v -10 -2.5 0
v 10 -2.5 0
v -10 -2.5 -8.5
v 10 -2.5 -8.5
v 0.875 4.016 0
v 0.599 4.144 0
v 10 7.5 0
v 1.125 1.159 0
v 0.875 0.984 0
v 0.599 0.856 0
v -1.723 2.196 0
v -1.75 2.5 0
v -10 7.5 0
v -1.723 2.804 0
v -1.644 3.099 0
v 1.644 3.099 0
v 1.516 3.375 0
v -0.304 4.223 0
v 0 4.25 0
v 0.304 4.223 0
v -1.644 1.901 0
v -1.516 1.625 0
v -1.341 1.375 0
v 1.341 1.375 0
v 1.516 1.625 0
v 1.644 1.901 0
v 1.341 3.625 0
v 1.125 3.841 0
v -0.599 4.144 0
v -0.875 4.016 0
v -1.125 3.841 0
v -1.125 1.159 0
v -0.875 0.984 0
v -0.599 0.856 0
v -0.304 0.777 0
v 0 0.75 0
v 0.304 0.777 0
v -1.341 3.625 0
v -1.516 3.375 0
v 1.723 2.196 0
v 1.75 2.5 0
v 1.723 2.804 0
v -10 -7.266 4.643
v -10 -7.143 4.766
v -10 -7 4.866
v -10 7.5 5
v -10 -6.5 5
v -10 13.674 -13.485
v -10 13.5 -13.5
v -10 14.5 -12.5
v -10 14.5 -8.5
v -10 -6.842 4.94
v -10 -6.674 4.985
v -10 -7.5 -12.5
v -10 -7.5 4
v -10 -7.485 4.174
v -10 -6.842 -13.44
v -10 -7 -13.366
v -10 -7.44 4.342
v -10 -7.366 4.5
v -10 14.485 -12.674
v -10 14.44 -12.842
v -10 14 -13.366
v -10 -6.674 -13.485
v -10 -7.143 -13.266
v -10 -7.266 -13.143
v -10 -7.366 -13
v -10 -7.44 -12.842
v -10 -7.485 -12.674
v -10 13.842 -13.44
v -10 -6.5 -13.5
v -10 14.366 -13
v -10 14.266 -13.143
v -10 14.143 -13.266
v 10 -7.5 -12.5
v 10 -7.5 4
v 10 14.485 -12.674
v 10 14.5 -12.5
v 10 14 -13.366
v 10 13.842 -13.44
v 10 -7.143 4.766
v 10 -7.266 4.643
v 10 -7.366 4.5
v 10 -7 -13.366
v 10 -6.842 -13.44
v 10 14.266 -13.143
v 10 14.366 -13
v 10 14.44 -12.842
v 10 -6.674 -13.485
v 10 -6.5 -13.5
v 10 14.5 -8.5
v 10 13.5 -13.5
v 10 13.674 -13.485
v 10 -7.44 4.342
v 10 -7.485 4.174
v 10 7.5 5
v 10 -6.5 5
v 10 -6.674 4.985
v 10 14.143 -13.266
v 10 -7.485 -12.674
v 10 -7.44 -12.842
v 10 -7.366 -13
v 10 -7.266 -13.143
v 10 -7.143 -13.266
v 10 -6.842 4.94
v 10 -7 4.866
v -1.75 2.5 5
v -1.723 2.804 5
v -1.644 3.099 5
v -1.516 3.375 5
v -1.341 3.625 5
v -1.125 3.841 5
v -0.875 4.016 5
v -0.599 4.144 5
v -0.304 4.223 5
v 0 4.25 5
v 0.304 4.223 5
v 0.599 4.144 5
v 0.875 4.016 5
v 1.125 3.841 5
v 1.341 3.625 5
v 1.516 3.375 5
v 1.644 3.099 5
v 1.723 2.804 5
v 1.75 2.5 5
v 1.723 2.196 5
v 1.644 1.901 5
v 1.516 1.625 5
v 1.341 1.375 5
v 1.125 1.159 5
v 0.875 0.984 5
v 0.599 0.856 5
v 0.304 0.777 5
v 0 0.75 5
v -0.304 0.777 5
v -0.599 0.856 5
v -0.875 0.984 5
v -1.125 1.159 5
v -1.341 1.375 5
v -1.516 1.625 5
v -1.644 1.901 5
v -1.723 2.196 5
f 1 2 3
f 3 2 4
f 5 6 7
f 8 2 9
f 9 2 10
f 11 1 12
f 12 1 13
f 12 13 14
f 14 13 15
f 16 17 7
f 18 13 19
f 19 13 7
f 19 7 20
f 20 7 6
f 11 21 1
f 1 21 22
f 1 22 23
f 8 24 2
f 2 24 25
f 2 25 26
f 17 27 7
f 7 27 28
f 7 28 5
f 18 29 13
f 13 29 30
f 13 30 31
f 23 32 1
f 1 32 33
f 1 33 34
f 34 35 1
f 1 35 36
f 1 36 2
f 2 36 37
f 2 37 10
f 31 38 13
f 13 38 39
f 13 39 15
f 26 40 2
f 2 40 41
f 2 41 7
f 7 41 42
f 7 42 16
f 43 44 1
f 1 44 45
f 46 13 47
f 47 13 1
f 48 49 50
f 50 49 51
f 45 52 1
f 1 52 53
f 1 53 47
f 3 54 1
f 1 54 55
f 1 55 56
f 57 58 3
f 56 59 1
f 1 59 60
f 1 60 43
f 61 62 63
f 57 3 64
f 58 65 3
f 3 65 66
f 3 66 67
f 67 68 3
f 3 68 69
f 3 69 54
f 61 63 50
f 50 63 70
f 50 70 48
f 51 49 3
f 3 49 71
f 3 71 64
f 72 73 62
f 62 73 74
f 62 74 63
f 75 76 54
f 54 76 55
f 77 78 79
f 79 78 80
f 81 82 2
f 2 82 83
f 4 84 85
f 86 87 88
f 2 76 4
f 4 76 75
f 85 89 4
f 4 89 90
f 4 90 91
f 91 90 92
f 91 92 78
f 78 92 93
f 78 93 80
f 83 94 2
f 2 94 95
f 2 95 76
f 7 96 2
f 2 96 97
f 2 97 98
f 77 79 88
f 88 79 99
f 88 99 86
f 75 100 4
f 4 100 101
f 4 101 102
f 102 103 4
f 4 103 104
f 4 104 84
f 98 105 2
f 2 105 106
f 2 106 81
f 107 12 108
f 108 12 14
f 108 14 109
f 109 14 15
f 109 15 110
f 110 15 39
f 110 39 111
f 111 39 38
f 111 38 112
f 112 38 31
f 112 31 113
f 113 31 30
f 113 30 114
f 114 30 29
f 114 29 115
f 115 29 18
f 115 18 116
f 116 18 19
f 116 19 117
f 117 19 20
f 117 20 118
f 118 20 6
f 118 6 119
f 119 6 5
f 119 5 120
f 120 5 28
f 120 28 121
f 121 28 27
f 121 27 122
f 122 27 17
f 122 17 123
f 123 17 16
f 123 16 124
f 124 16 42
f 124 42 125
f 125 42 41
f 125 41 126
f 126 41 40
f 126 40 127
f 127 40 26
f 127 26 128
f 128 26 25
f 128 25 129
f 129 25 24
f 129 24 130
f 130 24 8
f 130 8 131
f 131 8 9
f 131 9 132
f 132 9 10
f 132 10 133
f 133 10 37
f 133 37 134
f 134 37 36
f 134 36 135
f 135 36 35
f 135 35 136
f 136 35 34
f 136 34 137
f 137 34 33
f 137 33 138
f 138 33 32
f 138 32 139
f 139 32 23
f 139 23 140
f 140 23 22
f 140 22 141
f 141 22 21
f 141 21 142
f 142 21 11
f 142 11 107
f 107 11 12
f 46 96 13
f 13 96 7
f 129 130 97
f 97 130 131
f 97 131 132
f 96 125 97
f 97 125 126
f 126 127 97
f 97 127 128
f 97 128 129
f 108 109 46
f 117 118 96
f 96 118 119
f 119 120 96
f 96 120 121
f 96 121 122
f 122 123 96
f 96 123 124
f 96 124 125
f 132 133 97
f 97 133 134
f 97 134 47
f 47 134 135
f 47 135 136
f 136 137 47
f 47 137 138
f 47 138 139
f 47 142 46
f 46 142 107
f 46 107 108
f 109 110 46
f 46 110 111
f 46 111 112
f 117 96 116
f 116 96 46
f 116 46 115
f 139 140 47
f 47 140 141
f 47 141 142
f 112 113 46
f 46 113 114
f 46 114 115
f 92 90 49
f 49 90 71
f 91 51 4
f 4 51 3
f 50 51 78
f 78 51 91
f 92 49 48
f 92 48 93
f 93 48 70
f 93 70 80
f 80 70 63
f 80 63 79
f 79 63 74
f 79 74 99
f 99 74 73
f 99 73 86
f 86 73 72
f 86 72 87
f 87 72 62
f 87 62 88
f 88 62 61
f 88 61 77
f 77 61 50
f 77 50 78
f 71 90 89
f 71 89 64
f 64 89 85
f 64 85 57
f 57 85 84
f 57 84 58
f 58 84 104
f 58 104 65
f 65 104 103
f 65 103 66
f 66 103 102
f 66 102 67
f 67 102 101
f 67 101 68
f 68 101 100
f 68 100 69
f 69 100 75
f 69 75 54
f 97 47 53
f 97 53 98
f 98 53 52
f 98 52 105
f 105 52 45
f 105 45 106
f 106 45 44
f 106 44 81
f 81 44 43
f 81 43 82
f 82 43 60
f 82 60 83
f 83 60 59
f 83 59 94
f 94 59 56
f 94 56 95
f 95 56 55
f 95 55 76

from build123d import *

# Parameters (mm, degrees)
SCHIZZO1_W                   = 20
SCHIZZO1_H                   = 15
SCHIZZO1_R                   = 1.75
ESTRUSIONE_ESTRUSIONE1_DEPTH = 5
SCHIZZO3_W                   = 20
SCHIZZO3_H                   = 5
ESTRUSIONE_ESTRUSIONE2_DEPTH = 13.5
SCHIZZO4_W                   = 20
SCHIZZO4_H                   = 5
ESTRUSIONE_ESTRUSIONE3_DEPTH = 17
RACCORDO1_R                  = 1


with BuildPart() as part:
    # Schizzo1 → Estrusione-Estrusione1 (new body)
    with BuildSketch(Plane.XY):
        Rectangle(SCHIZZO1_W, SCHIZZO1_H)
        with Locations((0, 2.5)):
            Circle(SCHIZZO1_R, mode=Mode.SUBTRACT)
    extrude(amount=ESTRUSIONE_ESTRUSIONE1_DEPTH)

    # Schizzo3 → Estrusione-Estrusione2 (add)
    with BuildSketch(Plane(origin=(0, 0, 0), x_dir=(-1, 0, 0), z_dir=(0, 0, -1))):
        with Locations((0, -5)):
            Rectangle(SCHIZZO3_W, SCHIZZO3_H)
    extrude(amount=ESTRUSIONE_ESTRUSIONE2_DEPTH)

    # Schizzo4 → Estrusione-Estrusione3 (add)
    with BuildSketch(Plane(origin=(0, -2.5, 0), x_dir=(1, 0, 0), z_dir=(0, 1, 0))):
        with Locations((0, 11)):
            Rectangle(SCHIZZO4_W, SCHIZZO4_H)
    extrude(amount=ESTRUSIONE_ESTRUSIONE3_DEPTH)

    # Raccordo1
    raccordo1_edges = [part.edges().sort_by_distance(p)[0] for p in [
        (0, -7.5, 5),
        (0, -7.5, -13.5),
        (0, 14.5, -13.5),
    ]]
    fillet(raccordo1_edges, radius=RACCORDO1_R)


solid = part.part
